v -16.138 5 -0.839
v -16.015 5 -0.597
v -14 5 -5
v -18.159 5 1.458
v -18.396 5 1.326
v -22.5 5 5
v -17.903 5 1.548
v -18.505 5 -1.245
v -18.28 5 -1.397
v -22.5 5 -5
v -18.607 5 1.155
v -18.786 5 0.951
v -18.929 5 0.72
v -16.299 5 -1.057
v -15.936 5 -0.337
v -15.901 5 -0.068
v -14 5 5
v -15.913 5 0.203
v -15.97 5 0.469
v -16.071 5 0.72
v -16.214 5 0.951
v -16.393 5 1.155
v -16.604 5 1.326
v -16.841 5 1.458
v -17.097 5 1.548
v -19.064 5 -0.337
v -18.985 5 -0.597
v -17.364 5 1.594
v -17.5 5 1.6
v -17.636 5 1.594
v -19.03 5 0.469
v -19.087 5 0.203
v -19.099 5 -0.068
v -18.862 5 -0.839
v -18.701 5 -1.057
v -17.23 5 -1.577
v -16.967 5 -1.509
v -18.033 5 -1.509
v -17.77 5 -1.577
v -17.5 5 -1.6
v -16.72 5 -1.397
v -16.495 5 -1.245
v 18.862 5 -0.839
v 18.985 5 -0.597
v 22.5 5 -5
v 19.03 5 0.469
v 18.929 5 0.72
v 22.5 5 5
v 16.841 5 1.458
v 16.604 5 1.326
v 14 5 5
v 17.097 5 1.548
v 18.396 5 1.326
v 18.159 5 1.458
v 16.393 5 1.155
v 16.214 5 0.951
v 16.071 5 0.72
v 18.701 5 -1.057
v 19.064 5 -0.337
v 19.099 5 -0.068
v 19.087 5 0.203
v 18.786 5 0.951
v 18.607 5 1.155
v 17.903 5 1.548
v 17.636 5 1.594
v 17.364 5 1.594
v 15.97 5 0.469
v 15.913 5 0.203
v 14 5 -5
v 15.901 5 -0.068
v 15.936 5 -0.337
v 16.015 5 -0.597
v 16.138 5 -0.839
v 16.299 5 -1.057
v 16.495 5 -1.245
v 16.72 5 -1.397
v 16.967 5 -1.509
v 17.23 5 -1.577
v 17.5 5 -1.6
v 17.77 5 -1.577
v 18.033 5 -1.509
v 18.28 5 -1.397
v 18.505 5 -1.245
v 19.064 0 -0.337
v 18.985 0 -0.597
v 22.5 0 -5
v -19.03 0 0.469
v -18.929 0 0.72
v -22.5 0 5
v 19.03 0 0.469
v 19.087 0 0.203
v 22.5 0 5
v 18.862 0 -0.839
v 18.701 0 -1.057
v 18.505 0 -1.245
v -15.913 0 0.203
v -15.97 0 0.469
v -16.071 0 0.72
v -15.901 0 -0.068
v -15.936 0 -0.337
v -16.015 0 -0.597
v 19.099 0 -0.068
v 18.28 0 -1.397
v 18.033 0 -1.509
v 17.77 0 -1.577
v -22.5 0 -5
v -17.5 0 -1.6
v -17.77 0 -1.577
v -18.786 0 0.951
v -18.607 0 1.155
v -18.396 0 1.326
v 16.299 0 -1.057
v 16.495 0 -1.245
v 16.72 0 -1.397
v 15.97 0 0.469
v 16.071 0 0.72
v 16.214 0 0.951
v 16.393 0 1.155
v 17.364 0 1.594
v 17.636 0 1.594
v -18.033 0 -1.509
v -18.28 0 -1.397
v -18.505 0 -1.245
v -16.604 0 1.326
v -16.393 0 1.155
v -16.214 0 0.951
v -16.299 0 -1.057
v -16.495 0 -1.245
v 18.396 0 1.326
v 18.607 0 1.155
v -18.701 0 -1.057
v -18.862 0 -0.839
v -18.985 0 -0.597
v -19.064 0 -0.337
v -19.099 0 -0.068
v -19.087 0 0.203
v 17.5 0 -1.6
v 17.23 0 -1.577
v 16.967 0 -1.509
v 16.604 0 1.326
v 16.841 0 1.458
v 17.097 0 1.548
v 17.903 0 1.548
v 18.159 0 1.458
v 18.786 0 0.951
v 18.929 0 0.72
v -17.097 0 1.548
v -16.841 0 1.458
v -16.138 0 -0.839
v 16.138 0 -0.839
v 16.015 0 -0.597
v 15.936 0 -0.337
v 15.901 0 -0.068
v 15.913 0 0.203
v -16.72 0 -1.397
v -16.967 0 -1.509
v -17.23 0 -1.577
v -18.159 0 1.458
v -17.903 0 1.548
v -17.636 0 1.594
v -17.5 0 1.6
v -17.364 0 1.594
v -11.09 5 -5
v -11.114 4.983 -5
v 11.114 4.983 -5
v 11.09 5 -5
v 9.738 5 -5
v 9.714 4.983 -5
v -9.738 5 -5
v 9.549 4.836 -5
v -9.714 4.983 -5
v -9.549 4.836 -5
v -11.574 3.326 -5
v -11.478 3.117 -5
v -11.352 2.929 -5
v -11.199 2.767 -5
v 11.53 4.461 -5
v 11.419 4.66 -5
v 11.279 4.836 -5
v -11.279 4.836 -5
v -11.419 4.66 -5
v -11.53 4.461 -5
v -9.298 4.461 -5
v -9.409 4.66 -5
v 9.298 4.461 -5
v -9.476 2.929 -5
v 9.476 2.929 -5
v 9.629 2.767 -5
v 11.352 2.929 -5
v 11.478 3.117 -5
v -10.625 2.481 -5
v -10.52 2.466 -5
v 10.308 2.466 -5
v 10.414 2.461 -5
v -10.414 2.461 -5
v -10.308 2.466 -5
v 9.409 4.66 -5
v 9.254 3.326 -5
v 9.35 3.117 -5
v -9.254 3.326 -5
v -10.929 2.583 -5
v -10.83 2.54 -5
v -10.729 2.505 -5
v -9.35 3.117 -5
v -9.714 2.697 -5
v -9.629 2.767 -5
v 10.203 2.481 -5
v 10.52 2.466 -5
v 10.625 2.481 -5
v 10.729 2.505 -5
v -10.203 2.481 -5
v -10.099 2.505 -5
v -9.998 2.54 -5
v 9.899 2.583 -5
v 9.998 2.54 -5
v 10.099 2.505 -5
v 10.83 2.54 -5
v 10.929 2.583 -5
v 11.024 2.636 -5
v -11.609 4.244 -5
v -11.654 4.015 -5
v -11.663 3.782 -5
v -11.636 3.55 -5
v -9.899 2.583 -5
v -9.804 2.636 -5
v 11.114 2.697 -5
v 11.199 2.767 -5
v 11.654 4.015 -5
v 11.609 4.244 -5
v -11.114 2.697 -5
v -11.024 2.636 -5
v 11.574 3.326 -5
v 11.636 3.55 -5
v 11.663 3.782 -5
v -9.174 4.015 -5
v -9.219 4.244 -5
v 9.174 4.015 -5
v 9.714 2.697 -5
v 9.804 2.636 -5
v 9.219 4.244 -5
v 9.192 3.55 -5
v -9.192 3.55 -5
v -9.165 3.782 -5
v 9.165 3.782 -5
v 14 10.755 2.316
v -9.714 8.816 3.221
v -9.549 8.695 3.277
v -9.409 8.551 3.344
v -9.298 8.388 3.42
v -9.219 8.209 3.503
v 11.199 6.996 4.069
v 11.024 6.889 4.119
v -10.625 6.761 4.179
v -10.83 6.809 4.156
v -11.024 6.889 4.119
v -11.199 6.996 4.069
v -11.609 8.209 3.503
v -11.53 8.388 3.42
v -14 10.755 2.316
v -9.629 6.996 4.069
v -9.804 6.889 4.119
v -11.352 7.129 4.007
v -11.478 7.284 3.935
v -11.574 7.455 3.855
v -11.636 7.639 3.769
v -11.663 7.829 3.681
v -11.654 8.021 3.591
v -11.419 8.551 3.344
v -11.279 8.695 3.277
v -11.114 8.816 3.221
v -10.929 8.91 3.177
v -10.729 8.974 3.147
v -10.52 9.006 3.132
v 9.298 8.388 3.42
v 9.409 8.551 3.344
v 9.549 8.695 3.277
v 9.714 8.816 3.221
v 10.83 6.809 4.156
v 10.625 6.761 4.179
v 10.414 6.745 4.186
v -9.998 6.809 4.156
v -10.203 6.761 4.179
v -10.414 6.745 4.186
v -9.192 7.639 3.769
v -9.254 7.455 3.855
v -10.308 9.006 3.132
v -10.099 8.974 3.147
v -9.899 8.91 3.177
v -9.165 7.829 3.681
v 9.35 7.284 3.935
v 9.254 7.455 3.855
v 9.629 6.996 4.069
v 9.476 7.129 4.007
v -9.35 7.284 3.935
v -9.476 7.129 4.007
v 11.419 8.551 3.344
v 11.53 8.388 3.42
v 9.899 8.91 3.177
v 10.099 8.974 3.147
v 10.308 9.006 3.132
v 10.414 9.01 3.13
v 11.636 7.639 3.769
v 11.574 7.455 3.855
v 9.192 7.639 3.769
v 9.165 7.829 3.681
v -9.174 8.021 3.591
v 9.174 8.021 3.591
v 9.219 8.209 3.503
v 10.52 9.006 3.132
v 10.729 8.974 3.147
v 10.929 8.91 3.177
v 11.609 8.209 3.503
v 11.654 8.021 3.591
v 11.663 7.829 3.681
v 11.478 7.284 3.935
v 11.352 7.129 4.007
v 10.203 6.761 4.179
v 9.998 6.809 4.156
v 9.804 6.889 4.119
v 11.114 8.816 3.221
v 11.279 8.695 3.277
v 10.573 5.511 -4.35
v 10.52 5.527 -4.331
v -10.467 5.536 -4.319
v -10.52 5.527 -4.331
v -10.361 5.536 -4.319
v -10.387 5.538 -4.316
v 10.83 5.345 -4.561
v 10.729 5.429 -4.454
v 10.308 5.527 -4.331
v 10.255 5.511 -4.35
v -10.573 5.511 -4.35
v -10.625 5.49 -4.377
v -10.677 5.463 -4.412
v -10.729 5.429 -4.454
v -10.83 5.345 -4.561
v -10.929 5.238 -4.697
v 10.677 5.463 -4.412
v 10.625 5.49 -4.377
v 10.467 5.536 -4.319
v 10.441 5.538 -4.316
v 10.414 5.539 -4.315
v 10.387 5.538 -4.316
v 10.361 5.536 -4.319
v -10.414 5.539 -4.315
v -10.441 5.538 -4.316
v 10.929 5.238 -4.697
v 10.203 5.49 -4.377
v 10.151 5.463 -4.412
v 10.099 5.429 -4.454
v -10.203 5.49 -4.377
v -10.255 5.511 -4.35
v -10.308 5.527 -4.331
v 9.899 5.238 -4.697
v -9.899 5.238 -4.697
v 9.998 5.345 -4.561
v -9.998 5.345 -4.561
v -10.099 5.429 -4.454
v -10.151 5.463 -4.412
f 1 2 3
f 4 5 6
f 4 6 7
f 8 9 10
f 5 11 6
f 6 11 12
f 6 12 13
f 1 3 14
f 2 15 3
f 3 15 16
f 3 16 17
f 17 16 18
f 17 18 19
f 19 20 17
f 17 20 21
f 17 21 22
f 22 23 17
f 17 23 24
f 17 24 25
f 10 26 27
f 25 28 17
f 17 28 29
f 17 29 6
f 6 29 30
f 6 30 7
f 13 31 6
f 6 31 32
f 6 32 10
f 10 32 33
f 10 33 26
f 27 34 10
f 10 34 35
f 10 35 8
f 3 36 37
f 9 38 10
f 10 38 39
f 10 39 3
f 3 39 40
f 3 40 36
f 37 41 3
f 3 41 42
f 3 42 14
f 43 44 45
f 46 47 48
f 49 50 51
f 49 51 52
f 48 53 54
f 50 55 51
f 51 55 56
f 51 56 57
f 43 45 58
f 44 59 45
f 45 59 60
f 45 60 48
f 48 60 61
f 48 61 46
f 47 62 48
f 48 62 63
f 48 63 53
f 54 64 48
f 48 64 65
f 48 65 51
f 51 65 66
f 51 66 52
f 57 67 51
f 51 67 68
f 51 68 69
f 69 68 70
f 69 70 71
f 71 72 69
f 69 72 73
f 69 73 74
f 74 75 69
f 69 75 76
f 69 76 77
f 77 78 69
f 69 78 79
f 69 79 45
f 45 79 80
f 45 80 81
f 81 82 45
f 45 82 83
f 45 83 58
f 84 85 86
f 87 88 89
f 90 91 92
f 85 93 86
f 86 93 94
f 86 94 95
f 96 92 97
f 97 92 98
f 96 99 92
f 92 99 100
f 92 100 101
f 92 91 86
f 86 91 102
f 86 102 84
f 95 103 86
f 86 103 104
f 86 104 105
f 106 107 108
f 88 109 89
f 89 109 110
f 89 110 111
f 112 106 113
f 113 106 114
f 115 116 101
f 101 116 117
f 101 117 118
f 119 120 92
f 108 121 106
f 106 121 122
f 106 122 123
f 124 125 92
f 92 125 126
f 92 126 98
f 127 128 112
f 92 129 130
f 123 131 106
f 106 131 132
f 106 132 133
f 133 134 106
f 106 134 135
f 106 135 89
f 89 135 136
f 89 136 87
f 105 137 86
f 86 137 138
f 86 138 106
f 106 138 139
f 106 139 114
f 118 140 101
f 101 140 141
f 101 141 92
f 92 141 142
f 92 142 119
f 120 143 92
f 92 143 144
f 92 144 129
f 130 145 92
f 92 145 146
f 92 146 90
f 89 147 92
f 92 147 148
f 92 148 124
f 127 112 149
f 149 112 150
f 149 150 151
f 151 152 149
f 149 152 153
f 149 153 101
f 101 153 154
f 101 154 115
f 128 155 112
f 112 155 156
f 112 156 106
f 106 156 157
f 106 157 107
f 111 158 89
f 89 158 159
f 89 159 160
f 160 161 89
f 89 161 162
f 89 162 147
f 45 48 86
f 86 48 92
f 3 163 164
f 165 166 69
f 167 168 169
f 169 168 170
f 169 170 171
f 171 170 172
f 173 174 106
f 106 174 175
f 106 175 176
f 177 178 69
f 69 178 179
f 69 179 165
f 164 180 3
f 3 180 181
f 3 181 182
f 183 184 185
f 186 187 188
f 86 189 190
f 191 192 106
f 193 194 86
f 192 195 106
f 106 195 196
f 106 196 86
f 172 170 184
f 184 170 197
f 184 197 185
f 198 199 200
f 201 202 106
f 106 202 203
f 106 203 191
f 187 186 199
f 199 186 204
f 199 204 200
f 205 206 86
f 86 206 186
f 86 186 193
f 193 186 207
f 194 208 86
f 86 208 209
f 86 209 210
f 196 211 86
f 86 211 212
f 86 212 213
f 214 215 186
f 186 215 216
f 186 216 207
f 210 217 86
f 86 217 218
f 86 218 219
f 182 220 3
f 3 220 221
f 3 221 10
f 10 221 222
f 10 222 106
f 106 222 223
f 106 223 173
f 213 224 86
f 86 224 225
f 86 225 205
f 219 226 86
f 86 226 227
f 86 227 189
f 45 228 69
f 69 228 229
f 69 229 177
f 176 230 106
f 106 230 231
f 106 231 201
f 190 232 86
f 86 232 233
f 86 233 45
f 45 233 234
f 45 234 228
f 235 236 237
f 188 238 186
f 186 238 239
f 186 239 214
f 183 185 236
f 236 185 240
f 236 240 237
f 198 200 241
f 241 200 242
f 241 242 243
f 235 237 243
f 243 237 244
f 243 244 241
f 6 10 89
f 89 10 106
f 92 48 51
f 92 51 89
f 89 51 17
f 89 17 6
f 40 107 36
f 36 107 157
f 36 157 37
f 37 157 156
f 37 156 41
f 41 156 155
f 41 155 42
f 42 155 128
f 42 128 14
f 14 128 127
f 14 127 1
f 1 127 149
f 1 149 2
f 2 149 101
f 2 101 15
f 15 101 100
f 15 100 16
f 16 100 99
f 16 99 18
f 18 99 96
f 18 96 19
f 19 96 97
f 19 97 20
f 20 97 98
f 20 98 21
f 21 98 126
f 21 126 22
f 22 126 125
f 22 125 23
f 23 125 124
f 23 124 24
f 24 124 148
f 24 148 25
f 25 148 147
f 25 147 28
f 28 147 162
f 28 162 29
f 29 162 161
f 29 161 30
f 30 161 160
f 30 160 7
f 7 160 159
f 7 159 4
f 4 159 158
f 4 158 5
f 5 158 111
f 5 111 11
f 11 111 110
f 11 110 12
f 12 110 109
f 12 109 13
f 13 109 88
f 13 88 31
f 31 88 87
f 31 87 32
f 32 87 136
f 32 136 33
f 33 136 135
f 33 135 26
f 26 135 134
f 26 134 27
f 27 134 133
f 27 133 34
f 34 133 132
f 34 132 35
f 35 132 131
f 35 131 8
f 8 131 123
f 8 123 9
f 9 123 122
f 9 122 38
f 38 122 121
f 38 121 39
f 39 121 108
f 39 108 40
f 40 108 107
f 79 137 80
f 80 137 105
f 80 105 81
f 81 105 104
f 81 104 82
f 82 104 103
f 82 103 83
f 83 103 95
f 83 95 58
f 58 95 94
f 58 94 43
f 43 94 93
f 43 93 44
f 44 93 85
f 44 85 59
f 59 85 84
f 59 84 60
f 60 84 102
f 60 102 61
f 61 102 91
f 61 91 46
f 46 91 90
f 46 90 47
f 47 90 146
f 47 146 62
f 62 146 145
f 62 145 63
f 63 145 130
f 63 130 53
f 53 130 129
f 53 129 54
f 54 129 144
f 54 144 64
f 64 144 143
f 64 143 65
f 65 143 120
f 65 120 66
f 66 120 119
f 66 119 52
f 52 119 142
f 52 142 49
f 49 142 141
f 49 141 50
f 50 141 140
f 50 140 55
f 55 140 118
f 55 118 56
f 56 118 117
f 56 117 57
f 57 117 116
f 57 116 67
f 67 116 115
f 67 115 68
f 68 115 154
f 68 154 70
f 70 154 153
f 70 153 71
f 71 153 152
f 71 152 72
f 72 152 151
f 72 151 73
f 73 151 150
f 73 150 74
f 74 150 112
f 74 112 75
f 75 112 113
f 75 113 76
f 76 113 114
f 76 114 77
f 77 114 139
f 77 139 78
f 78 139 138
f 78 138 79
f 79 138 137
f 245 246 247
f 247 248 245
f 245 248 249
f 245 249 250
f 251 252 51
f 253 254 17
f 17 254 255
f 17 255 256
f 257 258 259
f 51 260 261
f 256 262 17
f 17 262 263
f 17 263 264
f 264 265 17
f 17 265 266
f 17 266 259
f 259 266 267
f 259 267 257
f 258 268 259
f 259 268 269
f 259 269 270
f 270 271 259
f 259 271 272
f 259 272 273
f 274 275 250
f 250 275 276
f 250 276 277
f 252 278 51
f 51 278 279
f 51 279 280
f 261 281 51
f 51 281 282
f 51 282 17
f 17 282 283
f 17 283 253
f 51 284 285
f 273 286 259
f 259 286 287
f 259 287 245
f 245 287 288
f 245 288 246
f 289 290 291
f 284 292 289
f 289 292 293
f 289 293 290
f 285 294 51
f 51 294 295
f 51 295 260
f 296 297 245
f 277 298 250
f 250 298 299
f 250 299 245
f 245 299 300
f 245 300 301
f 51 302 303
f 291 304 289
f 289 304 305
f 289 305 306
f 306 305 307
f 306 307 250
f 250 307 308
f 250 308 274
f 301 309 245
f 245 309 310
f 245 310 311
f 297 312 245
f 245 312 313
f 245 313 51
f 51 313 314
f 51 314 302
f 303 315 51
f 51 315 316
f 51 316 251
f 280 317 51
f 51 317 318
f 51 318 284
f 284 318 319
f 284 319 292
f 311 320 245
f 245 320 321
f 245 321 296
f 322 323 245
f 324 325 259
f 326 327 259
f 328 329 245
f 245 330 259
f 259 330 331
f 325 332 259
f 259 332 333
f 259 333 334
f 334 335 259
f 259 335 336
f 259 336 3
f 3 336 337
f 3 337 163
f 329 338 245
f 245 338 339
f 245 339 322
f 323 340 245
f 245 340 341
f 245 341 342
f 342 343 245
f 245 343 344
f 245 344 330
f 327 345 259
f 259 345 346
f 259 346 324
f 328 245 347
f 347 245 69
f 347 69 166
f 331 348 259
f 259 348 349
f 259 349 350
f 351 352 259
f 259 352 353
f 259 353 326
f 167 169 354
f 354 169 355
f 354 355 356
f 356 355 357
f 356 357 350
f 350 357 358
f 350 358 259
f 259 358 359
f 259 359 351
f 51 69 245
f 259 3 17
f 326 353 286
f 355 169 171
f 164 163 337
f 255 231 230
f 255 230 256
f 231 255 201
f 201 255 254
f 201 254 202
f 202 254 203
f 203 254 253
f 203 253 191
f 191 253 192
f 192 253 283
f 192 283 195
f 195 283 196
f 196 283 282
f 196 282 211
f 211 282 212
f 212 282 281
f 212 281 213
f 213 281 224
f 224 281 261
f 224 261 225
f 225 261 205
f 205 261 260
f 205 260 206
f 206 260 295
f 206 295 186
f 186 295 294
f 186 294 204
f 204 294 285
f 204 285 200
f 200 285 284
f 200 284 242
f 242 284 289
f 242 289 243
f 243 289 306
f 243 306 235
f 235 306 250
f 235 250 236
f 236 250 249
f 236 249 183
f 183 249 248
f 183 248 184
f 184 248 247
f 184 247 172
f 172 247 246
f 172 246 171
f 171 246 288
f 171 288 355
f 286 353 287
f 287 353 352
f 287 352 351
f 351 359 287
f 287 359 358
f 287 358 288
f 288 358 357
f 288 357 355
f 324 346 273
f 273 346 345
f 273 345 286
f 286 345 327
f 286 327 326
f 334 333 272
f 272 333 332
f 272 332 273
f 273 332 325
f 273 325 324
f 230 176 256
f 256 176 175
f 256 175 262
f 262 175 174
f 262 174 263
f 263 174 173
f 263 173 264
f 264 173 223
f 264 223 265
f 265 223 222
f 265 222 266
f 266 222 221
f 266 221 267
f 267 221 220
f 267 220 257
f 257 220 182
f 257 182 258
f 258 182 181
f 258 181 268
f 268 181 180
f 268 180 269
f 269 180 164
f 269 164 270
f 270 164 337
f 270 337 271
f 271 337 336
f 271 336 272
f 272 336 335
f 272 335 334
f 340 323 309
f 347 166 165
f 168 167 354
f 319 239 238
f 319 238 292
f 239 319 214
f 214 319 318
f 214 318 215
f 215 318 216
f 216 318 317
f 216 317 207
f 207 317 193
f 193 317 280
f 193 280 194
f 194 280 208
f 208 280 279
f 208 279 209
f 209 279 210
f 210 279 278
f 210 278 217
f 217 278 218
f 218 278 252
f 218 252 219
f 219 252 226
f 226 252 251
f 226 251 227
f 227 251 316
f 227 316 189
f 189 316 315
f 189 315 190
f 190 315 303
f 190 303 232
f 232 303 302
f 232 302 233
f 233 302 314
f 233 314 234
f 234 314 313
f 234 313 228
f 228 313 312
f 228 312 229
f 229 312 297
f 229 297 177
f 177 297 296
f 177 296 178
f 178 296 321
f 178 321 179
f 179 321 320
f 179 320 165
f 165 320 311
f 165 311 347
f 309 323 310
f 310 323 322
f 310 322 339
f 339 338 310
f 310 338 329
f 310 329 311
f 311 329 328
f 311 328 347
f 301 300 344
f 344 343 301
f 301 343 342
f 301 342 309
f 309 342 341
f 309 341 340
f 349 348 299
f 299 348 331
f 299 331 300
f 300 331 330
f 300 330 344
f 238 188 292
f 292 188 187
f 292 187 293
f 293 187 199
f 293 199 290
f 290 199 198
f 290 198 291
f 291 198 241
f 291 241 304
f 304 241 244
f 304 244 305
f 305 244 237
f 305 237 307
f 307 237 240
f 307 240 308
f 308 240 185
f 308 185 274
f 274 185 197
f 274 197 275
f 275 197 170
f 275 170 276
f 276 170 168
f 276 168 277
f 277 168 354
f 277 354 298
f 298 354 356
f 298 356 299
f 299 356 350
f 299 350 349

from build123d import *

# Parameters (mm, degrees)
SKETCH1_W           = 45
SKETCH1_H           = 10
SKETCH1_R           = 1.6
BOSS_EXTRUDE2_DEPTH = 5
BOSS_EXTRUDE3_DEPTH = 14
SKETCH4_R           = 1.25
CUT_EXTRUDE1_DEPTH  = 28


with BuildPart() as part:
    # Sketch1 → Boss-Extrude2 (new body)
    with BuildSketch(Plane(origin=(0, 0, 0), x_dir=(1, 0, 0), z_dir=(0, 1, 0))):
        Rectangle(SKETCH1_W, SKETCH1_H)
        with Locations((-17.5, 0)):
            Circle(SKETCH1_R, mode=Mode.SUBTRACT)
        with Locations((17.5, 0)):
            Circle(SKETCH1_R, mode=Mode.SUBTRACT)
    extrude(amount=BOSS_EXTRUDE2_DEPTH)

    # Sketch3 → Boss-Extrude3 (add, symmetric)
    with BuildSketch(Plane(origin=(0, 0, 0), x_dir=(0, 0, -1), z_dir=(1, 0, 0))):
        Polygon((-5, 5), (5, 5), (-2.316374038, 10.755054448), align=None)
    extrude(amount=BOSS_EXTRUDE3_DEPTH, both=True)

    # Sketch4 → Cut-Extrude1 (cut)
    with BuildSketch(Plane(origin=(0, 2.808142084, 6.022080132), x_dir=(1, 0, 0), z_dir=(0, 0.422618262, 0.906307787))):
        with Locations((-10.414, 5.593447626)):
            Circle(SKETCH4_R)
        with Locations((10.414, 5.593447626)):
            Circle(SKETCH4_R)
    extrude(amount=-CUT_EXTRUDE1_DEPTH, mode=Mode.SUBTRACT)


solid = part.part
